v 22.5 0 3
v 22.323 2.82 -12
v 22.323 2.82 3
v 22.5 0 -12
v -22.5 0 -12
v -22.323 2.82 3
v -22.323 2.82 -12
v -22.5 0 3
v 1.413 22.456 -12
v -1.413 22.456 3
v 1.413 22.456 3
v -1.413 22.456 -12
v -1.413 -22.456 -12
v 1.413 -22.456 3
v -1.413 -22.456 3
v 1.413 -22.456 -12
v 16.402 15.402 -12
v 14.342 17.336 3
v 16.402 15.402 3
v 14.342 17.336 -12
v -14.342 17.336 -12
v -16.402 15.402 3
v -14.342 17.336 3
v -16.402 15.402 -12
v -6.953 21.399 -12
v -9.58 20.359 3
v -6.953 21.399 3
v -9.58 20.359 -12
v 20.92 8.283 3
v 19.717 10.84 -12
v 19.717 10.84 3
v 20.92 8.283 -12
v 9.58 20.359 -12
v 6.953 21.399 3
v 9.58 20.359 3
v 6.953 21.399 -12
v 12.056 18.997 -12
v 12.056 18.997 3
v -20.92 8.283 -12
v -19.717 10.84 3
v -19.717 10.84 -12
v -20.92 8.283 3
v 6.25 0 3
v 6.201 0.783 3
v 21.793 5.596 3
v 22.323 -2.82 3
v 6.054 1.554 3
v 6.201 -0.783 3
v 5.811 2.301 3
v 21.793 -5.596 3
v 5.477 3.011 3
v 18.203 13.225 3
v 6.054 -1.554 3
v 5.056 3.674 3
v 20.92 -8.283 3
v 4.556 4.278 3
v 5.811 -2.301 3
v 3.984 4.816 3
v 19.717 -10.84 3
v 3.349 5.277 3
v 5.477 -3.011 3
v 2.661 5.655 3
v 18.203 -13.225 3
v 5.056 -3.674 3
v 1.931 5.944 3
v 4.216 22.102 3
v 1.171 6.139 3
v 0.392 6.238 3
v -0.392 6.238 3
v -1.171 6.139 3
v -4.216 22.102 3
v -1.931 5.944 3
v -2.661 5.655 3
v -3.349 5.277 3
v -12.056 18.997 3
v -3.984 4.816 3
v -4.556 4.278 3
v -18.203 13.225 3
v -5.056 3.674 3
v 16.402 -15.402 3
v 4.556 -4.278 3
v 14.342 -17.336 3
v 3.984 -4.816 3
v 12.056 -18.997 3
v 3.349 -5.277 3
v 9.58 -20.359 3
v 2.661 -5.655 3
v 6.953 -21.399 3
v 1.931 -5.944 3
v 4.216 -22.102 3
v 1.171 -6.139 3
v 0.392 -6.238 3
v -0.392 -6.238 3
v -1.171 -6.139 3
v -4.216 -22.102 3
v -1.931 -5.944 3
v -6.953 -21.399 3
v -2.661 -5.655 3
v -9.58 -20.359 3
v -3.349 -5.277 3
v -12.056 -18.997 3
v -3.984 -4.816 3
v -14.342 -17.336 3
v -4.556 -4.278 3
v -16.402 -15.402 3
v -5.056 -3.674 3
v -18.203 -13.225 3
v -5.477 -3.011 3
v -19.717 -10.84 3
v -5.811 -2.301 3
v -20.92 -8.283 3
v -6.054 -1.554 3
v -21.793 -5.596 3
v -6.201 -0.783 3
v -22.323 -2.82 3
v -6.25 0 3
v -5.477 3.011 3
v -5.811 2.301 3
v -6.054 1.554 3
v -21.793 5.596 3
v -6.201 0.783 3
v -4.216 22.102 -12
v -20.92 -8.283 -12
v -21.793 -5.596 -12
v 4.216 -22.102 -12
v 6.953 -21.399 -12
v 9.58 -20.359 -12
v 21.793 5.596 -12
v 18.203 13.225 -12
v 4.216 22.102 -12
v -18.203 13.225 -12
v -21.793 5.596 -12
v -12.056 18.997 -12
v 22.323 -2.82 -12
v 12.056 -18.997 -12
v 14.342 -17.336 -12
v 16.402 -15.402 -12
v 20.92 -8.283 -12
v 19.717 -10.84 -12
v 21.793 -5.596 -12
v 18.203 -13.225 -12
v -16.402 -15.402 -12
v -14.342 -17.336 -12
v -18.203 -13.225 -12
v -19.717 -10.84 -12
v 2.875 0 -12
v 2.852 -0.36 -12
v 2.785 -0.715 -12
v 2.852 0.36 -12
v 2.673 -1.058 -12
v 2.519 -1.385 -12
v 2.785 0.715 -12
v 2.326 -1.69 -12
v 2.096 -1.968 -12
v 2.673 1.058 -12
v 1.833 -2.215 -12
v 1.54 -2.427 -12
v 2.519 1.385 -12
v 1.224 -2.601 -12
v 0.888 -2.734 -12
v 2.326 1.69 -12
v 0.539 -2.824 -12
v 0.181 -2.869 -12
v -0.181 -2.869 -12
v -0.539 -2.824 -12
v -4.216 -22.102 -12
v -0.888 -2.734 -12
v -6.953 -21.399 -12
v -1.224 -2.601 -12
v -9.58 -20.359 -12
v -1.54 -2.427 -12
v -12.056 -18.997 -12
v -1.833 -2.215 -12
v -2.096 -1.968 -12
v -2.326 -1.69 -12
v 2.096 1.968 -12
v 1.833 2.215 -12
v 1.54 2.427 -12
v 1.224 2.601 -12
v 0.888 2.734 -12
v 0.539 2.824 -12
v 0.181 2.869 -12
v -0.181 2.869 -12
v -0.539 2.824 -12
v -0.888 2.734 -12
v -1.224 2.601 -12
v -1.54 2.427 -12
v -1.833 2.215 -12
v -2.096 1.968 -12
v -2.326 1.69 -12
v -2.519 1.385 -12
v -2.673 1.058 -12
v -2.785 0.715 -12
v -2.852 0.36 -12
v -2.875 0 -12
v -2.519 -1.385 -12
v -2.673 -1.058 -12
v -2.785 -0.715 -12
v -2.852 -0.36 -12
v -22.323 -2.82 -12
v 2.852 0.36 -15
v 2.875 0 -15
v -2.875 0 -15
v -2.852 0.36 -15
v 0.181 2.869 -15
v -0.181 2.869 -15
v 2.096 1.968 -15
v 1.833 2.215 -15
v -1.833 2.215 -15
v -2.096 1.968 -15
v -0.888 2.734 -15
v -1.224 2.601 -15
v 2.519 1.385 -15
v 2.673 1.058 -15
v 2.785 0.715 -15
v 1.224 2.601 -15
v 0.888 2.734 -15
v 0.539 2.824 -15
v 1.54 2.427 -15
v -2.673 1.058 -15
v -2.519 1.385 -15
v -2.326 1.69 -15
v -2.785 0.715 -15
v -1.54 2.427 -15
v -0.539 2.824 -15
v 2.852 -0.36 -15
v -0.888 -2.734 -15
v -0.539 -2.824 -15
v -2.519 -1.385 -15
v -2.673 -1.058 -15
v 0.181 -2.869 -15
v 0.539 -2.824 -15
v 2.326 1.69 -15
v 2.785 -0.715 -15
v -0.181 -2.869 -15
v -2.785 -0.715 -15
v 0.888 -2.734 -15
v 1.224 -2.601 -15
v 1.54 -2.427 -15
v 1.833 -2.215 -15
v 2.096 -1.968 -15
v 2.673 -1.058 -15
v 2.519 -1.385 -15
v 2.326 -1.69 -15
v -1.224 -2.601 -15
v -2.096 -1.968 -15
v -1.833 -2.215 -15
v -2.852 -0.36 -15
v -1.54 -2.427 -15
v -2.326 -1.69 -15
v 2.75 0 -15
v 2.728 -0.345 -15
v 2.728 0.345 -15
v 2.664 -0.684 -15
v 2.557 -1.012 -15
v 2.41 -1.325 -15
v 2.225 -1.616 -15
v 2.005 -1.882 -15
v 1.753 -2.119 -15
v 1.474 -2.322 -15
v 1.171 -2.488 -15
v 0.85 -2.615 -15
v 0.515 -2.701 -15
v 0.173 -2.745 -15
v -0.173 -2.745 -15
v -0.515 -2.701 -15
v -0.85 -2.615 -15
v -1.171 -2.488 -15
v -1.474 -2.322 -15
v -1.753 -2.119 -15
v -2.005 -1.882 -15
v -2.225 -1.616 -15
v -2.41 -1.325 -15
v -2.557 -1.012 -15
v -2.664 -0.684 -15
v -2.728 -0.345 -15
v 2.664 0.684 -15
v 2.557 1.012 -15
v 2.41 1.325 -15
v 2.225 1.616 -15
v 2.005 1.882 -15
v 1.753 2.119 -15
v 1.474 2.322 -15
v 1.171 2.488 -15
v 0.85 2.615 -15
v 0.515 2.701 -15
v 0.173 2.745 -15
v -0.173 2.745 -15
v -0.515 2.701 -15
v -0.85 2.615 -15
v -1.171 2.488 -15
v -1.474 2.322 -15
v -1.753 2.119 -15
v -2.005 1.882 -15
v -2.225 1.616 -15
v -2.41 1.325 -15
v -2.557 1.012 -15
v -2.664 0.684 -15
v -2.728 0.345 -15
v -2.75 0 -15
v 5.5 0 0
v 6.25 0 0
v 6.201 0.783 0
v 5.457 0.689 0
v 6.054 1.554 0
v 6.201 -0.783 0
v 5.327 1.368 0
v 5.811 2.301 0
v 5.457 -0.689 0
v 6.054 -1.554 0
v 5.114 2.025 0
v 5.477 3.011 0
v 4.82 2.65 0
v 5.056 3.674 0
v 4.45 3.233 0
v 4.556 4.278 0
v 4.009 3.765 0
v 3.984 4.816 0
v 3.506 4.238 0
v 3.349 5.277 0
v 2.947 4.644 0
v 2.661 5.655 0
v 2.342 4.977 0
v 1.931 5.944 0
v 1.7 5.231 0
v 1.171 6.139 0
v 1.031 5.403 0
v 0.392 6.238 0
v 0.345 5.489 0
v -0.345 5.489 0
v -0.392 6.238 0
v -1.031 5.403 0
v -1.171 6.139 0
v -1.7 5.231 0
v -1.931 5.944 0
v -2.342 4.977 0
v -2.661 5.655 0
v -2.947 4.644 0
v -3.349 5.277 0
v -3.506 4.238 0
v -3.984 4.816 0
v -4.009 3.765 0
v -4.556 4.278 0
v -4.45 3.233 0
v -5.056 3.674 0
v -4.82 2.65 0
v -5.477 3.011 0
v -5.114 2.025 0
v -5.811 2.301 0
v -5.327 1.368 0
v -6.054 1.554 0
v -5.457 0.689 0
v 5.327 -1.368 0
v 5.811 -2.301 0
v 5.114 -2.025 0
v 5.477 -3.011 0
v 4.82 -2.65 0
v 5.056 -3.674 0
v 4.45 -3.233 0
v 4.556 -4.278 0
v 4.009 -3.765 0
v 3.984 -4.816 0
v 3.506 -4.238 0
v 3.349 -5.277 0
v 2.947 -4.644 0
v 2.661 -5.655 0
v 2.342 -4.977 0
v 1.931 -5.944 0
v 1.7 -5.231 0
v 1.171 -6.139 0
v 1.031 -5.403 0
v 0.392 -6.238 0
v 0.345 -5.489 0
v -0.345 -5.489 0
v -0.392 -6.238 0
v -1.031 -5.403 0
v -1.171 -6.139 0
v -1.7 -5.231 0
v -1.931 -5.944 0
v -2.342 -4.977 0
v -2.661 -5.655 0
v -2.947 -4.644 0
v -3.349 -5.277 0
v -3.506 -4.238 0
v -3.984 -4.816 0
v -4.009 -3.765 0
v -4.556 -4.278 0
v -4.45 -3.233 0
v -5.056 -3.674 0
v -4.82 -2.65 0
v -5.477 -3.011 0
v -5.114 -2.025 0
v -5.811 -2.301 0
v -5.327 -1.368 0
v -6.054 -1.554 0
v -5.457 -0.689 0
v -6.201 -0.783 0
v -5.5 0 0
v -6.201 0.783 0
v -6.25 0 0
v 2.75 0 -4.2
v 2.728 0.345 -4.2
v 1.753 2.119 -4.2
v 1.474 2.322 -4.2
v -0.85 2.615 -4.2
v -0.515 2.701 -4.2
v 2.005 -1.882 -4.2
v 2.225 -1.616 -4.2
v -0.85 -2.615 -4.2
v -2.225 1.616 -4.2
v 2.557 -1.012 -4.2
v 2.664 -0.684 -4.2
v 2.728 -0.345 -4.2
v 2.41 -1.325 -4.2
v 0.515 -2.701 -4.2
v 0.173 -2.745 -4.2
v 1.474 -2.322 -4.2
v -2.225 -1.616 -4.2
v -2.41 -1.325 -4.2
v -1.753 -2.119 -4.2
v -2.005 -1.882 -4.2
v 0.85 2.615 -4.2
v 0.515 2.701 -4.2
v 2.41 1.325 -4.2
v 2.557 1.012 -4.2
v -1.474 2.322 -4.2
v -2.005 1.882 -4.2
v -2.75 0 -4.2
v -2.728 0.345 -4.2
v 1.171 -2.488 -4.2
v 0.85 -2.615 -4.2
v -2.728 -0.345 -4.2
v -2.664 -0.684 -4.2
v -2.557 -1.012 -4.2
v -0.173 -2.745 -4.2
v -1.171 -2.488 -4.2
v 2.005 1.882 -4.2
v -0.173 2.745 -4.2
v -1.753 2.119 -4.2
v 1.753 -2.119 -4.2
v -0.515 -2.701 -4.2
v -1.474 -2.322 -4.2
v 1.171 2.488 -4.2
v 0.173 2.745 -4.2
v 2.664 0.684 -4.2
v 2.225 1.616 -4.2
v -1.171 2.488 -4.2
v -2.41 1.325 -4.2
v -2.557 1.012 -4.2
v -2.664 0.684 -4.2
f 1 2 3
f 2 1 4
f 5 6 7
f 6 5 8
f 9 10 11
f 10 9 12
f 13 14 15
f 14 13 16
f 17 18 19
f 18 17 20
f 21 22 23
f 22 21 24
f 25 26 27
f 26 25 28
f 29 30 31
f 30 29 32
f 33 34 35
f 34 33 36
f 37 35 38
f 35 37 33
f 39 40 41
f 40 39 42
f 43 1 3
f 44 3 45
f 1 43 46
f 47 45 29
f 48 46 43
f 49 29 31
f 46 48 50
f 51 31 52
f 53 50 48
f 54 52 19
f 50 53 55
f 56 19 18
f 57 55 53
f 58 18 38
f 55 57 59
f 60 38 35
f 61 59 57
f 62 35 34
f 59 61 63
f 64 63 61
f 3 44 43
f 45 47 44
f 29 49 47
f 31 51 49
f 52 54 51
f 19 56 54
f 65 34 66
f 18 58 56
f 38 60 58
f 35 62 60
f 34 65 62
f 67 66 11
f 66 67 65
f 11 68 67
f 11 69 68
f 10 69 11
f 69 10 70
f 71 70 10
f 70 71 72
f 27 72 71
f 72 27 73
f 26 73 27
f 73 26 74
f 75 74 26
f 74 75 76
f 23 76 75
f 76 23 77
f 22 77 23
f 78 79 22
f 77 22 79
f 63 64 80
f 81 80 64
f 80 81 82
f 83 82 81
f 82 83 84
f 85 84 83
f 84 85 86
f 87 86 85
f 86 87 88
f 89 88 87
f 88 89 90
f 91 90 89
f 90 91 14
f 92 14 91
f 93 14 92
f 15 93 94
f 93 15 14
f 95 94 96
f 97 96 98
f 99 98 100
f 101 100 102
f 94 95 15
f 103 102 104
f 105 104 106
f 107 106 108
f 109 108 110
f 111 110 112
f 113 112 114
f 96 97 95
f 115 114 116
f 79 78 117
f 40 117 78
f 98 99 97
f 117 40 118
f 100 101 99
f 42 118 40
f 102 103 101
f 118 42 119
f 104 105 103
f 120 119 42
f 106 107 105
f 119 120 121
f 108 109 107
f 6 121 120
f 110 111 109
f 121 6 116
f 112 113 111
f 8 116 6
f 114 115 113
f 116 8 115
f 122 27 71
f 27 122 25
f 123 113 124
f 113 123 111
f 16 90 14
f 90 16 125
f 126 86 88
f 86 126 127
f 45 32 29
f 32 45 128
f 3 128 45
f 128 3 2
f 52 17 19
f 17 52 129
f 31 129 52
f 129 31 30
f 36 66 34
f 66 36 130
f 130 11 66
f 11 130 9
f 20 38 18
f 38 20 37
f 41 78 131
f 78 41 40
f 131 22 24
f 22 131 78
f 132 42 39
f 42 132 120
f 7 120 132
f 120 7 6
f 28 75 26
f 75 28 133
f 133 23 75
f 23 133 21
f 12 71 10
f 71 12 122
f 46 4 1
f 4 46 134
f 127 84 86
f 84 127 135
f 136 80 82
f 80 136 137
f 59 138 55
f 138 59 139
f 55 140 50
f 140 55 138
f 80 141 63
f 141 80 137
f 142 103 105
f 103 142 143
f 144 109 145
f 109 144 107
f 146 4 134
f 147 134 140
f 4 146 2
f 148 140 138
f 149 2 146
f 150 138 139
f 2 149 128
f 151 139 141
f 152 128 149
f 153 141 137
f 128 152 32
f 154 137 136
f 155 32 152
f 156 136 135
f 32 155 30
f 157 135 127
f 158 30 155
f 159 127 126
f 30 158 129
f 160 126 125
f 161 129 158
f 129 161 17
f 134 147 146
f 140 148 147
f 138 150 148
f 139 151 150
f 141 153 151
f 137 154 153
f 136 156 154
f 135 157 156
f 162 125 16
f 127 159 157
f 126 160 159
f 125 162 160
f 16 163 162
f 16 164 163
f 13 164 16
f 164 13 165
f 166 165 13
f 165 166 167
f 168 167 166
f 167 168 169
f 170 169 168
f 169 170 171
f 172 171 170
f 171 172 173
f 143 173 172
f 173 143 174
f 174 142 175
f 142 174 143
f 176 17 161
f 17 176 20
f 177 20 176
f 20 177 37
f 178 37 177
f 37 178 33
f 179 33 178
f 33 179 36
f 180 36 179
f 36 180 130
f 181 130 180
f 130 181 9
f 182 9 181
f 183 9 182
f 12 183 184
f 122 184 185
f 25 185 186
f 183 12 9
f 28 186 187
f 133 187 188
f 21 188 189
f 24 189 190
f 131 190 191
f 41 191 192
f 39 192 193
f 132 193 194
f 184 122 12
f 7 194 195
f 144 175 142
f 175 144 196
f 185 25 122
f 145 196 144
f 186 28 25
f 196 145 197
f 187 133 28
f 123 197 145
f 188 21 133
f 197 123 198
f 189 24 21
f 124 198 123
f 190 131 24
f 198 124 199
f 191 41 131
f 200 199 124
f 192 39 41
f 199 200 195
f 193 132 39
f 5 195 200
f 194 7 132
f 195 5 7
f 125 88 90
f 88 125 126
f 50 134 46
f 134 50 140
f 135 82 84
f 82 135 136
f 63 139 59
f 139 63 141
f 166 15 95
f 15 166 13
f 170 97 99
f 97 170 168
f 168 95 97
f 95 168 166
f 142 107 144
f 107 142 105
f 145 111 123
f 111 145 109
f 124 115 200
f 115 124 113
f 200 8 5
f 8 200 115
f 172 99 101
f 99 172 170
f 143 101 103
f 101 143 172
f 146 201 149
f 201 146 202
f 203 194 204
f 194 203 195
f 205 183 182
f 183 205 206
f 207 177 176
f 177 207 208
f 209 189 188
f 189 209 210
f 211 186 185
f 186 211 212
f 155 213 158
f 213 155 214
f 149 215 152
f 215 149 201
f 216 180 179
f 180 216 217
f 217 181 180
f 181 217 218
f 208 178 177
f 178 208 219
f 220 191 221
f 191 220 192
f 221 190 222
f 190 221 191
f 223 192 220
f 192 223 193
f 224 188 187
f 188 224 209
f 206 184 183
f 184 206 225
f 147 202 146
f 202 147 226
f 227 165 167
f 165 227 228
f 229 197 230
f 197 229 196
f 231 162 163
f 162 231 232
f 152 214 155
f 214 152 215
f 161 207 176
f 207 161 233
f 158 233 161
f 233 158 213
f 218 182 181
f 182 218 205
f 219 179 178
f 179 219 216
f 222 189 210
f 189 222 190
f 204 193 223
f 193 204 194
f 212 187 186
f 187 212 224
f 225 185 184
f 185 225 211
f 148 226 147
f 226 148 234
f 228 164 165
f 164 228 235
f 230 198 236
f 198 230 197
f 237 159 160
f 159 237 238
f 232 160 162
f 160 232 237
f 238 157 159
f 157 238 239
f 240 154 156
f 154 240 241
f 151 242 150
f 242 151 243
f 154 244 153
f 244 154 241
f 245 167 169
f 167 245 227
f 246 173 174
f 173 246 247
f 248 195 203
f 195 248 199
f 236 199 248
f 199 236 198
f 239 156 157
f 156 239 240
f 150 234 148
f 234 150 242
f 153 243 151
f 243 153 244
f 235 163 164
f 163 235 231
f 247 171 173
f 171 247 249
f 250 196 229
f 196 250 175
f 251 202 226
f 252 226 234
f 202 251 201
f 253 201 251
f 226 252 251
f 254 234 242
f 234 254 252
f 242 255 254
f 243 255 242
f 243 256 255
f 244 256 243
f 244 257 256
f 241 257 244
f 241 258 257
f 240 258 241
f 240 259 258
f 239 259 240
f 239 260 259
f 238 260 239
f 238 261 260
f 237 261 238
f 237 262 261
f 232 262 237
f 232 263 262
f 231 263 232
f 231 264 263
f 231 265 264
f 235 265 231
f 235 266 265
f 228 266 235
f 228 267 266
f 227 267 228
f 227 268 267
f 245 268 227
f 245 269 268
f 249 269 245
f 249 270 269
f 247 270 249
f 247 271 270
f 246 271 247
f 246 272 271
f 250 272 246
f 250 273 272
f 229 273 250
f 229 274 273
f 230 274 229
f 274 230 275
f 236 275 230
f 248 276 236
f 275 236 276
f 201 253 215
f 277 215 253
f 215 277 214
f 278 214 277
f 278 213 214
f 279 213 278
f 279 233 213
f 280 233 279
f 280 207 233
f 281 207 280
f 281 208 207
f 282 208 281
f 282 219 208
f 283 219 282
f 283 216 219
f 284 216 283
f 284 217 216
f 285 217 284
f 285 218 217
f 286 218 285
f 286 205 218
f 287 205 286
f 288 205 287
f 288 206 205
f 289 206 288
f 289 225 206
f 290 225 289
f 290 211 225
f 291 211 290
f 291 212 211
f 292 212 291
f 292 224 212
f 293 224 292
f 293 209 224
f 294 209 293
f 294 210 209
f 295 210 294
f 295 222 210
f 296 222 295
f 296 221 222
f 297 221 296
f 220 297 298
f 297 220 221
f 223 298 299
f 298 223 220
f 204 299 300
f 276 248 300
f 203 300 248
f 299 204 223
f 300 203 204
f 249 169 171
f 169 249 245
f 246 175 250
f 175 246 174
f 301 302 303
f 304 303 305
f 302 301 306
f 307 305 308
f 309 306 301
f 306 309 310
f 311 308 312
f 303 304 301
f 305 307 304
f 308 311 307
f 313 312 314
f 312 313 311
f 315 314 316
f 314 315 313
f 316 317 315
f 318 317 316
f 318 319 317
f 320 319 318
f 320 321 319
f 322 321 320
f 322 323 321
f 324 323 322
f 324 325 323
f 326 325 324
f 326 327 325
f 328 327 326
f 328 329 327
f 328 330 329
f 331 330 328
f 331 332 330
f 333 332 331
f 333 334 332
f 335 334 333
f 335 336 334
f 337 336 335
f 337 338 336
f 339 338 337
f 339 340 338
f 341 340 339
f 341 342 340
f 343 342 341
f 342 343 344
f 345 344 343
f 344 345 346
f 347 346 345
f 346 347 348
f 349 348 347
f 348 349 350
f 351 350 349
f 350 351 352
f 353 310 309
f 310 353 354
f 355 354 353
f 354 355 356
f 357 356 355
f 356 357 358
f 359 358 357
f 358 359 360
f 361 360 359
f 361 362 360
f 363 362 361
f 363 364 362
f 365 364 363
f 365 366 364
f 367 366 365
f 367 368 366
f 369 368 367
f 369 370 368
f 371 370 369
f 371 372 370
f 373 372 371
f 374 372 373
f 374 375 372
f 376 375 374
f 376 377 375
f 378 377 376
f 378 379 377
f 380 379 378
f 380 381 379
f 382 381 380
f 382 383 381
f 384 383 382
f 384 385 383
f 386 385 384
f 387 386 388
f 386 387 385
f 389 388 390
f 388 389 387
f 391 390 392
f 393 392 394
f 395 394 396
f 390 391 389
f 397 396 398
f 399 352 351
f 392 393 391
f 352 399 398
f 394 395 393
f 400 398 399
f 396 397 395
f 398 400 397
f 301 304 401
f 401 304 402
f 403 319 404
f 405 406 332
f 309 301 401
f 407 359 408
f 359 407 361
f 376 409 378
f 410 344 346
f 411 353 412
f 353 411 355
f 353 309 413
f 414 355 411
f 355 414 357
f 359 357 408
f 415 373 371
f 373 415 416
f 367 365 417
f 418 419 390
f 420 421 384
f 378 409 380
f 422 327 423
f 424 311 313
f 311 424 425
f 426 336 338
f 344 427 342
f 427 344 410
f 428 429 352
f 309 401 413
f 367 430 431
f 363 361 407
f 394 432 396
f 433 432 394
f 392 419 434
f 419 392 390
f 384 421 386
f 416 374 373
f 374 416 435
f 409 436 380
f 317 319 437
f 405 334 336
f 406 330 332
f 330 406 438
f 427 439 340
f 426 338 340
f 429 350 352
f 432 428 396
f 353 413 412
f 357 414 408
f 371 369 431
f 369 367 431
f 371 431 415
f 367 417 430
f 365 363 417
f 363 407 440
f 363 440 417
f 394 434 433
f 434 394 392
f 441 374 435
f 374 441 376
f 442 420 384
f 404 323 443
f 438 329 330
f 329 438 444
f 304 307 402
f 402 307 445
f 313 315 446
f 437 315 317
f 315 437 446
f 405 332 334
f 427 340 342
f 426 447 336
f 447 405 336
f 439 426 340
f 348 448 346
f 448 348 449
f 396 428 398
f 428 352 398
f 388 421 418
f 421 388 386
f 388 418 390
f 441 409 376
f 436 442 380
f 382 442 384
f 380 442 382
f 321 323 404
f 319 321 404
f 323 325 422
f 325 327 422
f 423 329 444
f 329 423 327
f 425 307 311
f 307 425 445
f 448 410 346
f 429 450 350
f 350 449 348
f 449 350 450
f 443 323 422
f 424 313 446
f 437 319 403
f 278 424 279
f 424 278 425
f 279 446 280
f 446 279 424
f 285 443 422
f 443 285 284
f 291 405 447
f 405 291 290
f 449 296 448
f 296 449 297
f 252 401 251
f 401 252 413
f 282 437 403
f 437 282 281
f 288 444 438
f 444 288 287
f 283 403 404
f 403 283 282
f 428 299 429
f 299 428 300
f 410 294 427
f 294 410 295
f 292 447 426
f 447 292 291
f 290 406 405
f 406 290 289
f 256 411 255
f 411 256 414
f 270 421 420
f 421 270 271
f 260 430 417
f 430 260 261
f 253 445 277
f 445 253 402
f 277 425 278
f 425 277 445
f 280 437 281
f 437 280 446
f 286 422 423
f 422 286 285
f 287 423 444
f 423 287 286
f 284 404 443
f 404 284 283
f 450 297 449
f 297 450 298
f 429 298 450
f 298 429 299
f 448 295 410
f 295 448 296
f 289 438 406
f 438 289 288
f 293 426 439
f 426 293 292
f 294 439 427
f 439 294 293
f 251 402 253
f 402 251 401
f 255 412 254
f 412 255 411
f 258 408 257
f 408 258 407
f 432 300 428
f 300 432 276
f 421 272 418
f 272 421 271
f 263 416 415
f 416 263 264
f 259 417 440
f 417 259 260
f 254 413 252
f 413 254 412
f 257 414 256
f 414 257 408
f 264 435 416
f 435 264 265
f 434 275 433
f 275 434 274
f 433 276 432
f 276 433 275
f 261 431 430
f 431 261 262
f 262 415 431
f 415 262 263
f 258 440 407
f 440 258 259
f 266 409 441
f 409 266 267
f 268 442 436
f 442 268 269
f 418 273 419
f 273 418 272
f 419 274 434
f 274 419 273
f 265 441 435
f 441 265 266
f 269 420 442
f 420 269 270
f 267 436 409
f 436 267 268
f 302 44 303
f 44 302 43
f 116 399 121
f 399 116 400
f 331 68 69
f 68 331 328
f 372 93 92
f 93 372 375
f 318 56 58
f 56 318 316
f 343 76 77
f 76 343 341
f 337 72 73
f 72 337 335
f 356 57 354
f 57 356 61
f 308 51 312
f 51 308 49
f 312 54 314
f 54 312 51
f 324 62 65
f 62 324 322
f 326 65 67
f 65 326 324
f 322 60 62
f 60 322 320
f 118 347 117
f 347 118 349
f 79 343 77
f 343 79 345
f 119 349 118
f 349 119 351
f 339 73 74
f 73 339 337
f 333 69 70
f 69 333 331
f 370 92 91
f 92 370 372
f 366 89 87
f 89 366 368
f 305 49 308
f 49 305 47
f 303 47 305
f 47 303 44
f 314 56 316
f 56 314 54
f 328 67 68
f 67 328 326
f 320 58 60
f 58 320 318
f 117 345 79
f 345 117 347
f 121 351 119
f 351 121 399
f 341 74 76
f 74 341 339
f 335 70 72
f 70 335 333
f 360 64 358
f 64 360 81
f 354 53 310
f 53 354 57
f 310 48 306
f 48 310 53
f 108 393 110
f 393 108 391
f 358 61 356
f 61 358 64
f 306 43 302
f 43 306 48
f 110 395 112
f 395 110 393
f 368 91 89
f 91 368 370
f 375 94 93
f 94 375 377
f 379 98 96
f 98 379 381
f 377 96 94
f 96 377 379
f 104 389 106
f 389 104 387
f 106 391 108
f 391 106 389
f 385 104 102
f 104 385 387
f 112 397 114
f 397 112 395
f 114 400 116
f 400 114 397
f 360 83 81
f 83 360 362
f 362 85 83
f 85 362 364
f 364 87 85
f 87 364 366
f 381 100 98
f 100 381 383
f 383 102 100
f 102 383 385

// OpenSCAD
$fn = 50;


difference() {
	union() {
		translate(v = [0, 0, -12.0000000000]) {
			cylinder(h = 15, r = 22.5000000000);
		}
		#translate(v = [0, 0, -15.0000000000]) {
			cylinder(h = 15, r = 2.8750000000);
		}
	}
	union() {
		translate(v = [0, 0, 0]) {
			rotate(a = [0, 0, 0]) {
				difference() {
					union() {
						translate(v = [0, 0, -15.0000000000]) {
							cylinder(h = 15, r = 2.2500000000);
						}
						translate(v = [0, 0, -4.2000000000]) {
							cylinder(h = 4.2000000000, r1 = 2.7500000000, r2 = 5.5000000000);
						}
						translate(v = [0, 0, -15.0000000000]) {
							cylinder(h = 15, r = 2.7500000000);
						}
						translate(v = [0, 0, -15.0000000000]) {
							cylinder(h = 15, r = 2.2500000000);
						}
					}
					union();
				}
			}
		}
		#cylinder(h = 3, r = 6.2500000000);
	}
}
